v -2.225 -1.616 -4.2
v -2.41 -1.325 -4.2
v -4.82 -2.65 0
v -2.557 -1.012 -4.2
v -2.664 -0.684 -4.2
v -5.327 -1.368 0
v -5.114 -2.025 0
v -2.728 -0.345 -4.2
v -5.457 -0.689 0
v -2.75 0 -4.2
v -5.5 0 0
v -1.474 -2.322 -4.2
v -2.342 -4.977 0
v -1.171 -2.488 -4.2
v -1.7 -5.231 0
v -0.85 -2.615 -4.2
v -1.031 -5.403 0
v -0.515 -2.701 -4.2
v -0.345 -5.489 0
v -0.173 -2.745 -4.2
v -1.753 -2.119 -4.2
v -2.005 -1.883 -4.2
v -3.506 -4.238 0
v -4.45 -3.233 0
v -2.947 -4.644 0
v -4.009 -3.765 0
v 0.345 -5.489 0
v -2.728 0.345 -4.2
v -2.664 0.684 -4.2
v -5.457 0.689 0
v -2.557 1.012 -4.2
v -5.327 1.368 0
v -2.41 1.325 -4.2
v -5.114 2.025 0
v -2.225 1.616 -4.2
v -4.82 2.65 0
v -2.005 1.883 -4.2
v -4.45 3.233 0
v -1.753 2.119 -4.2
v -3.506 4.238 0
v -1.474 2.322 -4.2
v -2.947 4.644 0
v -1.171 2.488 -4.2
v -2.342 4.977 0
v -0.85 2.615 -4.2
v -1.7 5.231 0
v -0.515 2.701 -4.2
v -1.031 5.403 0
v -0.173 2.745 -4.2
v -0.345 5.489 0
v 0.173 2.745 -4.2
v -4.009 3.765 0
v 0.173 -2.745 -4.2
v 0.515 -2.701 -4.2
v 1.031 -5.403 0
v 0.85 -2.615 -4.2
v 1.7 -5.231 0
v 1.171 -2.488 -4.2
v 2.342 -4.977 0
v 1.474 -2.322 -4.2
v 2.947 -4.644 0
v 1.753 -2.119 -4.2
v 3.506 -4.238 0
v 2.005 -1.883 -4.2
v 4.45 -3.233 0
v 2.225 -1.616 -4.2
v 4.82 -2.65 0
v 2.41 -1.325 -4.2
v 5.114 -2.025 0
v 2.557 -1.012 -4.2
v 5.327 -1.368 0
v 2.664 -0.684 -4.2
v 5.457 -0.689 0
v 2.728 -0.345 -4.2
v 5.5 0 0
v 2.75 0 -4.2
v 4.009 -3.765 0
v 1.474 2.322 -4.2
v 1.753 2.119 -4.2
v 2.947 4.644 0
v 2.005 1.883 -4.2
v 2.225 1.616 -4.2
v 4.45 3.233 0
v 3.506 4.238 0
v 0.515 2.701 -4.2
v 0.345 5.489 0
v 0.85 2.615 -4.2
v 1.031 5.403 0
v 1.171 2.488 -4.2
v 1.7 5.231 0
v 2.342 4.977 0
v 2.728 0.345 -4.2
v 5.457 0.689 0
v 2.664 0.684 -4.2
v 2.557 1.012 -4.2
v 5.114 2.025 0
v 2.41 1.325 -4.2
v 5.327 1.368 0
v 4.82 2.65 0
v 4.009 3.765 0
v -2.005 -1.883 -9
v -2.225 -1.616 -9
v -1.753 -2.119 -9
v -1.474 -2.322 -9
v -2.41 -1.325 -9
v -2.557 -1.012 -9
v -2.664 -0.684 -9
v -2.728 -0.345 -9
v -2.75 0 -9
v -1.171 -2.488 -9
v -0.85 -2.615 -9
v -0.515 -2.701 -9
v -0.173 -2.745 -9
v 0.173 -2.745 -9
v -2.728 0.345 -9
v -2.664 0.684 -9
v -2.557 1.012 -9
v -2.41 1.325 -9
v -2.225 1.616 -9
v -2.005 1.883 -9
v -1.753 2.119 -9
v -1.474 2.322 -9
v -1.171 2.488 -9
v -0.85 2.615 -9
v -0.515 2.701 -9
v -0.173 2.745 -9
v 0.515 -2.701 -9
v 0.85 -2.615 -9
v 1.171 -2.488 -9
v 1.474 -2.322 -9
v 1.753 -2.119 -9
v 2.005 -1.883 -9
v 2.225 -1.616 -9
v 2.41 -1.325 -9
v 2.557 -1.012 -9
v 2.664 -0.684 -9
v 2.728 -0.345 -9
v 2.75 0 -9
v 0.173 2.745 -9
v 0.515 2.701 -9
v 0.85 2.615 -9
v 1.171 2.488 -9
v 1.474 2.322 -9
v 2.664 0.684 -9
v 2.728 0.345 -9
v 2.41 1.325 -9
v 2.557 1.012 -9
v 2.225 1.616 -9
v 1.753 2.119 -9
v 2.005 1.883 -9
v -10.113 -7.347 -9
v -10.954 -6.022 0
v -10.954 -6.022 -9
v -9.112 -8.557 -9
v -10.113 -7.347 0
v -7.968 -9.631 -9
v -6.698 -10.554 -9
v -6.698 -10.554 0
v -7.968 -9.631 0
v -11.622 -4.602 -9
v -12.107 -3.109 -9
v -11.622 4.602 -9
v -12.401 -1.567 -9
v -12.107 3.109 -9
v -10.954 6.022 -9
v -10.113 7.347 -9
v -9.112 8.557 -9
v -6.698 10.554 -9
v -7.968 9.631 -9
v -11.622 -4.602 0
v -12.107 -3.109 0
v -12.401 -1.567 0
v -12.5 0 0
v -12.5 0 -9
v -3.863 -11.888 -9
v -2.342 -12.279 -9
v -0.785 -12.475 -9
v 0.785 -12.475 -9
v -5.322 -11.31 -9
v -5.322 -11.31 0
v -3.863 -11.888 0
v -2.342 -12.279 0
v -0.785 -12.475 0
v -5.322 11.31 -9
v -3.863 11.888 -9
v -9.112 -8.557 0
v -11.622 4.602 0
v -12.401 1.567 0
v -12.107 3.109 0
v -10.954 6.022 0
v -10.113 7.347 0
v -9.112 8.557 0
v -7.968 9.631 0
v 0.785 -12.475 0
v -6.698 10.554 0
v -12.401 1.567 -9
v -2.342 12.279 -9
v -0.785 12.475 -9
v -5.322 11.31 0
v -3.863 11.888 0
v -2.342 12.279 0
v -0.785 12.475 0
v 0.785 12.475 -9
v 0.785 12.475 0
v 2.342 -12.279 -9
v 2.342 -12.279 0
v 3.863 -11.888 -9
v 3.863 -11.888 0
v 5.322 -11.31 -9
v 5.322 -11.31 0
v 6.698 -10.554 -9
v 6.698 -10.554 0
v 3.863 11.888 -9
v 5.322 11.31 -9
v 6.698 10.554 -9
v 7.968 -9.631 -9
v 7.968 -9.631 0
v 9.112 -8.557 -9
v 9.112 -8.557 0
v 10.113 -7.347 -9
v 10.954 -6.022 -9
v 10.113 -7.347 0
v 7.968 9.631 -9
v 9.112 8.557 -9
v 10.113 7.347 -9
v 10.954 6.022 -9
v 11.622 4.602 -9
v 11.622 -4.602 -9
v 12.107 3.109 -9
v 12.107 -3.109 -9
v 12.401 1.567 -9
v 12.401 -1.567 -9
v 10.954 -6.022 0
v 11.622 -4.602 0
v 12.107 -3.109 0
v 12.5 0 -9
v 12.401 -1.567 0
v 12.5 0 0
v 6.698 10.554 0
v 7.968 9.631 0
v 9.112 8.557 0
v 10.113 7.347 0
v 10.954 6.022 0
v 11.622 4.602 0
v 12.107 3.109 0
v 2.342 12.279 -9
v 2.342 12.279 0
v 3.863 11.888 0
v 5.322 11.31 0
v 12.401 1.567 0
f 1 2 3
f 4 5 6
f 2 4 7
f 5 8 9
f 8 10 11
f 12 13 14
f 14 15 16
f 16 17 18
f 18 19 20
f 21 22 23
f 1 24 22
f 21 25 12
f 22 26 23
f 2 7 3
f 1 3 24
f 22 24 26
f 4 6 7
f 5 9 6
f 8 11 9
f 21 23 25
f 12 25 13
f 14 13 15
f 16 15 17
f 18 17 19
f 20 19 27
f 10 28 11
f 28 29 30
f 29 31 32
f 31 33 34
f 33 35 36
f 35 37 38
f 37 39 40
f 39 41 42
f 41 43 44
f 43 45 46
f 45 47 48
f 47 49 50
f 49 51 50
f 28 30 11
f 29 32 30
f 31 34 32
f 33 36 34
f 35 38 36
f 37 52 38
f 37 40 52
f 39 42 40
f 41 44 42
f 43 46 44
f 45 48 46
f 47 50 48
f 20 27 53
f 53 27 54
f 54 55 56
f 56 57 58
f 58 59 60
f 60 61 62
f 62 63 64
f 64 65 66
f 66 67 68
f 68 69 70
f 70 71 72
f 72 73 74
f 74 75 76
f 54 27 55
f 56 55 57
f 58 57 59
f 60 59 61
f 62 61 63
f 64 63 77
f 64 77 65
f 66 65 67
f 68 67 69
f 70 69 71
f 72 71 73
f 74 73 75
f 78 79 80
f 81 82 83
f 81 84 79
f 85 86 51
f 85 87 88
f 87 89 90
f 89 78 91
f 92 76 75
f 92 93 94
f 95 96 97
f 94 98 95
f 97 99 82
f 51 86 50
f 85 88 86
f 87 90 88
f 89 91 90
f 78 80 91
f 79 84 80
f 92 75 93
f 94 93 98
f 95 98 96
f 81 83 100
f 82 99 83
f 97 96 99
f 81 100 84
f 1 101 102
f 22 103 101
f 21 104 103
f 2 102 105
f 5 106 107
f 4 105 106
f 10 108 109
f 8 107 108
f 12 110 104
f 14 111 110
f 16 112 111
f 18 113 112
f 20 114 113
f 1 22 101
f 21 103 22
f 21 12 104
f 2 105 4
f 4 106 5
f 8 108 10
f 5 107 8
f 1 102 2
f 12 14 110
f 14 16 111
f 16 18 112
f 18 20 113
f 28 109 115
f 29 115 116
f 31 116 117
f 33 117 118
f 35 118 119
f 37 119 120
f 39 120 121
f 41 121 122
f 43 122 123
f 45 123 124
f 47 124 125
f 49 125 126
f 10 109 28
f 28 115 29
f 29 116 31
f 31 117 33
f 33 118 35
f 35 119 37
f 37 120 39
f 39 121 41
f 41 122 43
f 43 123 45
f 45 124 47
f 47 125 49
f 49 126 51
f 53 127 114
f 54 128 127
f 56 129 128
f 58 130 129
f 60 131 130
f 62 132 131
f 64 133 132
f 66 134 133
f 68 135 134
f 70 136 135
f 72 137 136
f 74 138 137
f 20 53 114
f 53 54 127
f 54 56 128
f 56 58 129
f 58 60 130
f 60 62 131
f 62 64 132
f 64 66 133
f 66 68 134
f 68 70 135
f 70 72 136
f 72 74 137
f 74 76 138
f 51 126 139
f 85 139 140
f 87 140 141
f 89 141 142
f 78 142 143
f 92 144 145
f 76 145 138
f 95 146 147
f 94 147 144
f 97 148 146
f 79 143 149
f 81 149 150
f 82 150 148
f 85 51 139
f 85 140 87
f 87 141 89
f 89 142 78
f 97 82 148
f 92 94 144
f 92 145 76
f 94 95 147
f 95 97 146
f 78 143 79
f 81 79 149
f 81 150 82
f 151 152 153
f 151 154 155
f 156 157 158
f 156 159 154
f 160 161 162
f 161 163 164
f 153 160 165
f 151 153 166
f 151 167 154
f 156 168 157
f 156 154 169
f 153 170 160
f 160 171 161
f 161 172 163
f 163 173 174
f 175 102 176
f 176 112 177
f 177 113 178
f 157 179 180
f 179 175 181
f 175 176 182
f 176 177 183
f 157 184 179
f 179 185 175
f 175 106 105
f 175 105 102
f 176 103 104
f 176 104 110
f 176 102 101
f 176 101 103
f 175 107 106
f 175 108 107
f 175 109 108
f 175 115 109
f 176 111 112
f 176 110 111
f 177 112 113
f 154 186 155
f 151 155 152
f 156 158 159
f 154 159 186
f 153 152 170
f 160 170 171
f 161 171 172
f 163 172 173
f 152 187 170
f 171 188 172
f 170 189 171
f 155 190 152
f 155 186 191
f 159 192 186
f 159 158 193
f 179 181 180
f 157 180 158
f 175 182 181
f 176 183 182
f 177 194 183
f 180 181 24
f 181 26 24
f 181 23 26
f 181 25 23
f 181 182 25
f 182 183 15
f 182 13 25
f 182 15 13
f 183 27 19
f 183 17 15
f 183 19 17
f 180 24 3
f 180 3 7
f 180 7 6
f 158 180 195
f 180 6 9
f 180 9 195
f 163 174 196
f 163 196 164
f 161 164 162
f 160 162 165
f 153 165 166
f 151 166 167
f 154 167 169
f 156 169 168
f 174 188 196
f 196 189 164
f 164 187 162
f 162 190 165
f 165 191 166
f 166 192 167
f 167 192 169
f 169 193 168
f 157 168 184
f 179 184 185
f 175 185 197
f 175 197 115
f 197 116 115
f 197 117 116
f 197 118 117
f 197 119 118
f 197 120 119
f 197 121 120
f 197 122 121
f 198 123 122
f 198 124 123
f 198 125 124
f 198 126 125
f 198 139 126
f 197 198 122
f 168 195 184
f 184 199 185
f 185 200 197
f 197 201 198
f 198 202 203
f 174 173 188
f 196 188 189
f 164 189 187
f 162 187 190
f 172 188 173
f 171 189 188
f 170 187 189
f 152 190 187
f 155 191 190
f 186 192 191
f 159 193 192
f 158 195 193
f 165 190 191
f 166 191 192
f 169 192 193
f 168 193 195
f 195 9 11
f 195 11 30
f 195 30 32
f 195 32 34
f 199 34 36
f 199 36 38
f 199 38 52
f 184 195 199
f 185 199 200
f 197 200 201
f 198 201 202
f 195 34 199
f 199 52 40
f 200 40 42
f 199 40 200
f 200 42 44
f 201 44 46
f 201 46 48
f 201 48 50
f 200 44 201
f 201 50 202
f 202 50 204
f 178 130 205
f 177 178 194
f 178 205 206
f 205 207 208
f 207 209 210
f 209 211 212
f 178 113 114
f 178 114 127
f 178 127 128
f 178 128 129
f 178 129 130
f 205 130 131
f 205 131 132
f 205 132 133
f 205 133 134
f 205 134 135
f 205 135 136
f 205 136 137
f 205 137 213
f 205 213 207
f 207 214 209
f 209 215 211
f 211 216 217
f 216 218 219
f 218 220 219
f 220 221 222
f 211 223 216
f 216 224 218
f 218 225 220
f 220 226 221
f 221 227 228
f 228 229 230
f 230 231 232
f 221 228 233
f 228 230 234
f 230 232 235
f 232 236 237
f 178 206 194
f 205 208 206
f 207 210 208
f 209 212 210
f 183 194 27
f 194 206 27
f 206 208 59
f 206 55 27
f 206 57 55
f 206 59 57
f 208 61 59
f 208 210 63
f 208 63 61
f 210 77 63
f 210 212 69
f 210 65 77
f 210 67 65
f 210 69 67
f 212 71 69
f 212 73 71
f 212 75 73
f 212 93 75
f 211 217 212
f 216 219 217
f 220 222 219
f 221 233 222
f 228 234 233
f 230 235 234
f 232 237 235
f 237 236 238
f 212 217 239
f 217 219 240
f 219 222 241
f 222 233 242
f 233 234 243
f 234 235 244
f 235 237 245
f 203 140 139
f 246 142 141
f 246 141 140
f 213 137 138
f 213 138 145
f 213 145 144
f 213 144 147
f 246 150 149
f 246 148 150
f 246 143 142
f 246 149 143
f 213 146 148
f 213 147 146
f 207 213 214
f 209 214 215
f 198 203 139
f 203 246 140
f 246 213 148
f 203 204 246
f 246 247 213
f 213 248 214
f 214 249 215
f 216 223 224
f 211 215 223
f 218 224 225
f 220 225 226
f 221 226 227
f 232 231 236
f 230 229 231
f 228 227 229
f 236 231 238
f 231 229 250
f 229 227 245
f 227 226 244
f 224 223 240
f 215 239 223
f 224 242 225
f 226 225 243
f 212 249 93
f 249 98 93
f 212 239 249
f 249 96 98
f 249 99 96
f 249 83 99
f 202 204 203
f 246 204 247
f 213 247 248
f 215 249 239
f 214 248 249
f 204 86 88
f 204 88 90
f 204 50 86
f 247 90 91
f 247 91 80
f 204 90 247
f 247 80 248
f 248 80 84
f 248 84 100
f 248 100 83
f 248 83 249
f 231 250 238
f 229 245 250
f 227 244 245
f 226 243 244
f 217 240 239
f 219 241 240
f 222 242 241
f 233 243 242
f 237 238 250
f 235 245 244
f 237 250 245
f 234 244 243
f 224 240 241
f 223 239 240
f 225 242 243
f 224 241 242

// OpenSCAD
$fn = 50;


difference() {
	union() {
		translate(v = [0, 0, -9.0000000000]) {
			cylinder(h = 9, r = 12.5000000000);
		}
	}
	union() {
		translate(v = [0, 0, 0]) {
			rotate(a = [0, 0, 0]) {
				difference() {
					union() {
						translate(v = [0, 0, -12.0000000000]) {
							cylinder(h = 12, r = 2.2500000000);
						}
						translate(v = [0, 0, -4.2000000000]) {
							cylinder(h = 4.2000000000, r1 = 2.7500000000, r2 = 5.5000000000);
						}
						translate(v = [0, 0, -12.0000000000]) {
							cylinder(h = 12, r = 2.7500000000);
						}
						translate(v = [0, 0, -12.0000000000]) {
							cylinder(h = 12, r = 2.2500000000);
						}
					}
					union();
				}
			}
		}
	}
}
